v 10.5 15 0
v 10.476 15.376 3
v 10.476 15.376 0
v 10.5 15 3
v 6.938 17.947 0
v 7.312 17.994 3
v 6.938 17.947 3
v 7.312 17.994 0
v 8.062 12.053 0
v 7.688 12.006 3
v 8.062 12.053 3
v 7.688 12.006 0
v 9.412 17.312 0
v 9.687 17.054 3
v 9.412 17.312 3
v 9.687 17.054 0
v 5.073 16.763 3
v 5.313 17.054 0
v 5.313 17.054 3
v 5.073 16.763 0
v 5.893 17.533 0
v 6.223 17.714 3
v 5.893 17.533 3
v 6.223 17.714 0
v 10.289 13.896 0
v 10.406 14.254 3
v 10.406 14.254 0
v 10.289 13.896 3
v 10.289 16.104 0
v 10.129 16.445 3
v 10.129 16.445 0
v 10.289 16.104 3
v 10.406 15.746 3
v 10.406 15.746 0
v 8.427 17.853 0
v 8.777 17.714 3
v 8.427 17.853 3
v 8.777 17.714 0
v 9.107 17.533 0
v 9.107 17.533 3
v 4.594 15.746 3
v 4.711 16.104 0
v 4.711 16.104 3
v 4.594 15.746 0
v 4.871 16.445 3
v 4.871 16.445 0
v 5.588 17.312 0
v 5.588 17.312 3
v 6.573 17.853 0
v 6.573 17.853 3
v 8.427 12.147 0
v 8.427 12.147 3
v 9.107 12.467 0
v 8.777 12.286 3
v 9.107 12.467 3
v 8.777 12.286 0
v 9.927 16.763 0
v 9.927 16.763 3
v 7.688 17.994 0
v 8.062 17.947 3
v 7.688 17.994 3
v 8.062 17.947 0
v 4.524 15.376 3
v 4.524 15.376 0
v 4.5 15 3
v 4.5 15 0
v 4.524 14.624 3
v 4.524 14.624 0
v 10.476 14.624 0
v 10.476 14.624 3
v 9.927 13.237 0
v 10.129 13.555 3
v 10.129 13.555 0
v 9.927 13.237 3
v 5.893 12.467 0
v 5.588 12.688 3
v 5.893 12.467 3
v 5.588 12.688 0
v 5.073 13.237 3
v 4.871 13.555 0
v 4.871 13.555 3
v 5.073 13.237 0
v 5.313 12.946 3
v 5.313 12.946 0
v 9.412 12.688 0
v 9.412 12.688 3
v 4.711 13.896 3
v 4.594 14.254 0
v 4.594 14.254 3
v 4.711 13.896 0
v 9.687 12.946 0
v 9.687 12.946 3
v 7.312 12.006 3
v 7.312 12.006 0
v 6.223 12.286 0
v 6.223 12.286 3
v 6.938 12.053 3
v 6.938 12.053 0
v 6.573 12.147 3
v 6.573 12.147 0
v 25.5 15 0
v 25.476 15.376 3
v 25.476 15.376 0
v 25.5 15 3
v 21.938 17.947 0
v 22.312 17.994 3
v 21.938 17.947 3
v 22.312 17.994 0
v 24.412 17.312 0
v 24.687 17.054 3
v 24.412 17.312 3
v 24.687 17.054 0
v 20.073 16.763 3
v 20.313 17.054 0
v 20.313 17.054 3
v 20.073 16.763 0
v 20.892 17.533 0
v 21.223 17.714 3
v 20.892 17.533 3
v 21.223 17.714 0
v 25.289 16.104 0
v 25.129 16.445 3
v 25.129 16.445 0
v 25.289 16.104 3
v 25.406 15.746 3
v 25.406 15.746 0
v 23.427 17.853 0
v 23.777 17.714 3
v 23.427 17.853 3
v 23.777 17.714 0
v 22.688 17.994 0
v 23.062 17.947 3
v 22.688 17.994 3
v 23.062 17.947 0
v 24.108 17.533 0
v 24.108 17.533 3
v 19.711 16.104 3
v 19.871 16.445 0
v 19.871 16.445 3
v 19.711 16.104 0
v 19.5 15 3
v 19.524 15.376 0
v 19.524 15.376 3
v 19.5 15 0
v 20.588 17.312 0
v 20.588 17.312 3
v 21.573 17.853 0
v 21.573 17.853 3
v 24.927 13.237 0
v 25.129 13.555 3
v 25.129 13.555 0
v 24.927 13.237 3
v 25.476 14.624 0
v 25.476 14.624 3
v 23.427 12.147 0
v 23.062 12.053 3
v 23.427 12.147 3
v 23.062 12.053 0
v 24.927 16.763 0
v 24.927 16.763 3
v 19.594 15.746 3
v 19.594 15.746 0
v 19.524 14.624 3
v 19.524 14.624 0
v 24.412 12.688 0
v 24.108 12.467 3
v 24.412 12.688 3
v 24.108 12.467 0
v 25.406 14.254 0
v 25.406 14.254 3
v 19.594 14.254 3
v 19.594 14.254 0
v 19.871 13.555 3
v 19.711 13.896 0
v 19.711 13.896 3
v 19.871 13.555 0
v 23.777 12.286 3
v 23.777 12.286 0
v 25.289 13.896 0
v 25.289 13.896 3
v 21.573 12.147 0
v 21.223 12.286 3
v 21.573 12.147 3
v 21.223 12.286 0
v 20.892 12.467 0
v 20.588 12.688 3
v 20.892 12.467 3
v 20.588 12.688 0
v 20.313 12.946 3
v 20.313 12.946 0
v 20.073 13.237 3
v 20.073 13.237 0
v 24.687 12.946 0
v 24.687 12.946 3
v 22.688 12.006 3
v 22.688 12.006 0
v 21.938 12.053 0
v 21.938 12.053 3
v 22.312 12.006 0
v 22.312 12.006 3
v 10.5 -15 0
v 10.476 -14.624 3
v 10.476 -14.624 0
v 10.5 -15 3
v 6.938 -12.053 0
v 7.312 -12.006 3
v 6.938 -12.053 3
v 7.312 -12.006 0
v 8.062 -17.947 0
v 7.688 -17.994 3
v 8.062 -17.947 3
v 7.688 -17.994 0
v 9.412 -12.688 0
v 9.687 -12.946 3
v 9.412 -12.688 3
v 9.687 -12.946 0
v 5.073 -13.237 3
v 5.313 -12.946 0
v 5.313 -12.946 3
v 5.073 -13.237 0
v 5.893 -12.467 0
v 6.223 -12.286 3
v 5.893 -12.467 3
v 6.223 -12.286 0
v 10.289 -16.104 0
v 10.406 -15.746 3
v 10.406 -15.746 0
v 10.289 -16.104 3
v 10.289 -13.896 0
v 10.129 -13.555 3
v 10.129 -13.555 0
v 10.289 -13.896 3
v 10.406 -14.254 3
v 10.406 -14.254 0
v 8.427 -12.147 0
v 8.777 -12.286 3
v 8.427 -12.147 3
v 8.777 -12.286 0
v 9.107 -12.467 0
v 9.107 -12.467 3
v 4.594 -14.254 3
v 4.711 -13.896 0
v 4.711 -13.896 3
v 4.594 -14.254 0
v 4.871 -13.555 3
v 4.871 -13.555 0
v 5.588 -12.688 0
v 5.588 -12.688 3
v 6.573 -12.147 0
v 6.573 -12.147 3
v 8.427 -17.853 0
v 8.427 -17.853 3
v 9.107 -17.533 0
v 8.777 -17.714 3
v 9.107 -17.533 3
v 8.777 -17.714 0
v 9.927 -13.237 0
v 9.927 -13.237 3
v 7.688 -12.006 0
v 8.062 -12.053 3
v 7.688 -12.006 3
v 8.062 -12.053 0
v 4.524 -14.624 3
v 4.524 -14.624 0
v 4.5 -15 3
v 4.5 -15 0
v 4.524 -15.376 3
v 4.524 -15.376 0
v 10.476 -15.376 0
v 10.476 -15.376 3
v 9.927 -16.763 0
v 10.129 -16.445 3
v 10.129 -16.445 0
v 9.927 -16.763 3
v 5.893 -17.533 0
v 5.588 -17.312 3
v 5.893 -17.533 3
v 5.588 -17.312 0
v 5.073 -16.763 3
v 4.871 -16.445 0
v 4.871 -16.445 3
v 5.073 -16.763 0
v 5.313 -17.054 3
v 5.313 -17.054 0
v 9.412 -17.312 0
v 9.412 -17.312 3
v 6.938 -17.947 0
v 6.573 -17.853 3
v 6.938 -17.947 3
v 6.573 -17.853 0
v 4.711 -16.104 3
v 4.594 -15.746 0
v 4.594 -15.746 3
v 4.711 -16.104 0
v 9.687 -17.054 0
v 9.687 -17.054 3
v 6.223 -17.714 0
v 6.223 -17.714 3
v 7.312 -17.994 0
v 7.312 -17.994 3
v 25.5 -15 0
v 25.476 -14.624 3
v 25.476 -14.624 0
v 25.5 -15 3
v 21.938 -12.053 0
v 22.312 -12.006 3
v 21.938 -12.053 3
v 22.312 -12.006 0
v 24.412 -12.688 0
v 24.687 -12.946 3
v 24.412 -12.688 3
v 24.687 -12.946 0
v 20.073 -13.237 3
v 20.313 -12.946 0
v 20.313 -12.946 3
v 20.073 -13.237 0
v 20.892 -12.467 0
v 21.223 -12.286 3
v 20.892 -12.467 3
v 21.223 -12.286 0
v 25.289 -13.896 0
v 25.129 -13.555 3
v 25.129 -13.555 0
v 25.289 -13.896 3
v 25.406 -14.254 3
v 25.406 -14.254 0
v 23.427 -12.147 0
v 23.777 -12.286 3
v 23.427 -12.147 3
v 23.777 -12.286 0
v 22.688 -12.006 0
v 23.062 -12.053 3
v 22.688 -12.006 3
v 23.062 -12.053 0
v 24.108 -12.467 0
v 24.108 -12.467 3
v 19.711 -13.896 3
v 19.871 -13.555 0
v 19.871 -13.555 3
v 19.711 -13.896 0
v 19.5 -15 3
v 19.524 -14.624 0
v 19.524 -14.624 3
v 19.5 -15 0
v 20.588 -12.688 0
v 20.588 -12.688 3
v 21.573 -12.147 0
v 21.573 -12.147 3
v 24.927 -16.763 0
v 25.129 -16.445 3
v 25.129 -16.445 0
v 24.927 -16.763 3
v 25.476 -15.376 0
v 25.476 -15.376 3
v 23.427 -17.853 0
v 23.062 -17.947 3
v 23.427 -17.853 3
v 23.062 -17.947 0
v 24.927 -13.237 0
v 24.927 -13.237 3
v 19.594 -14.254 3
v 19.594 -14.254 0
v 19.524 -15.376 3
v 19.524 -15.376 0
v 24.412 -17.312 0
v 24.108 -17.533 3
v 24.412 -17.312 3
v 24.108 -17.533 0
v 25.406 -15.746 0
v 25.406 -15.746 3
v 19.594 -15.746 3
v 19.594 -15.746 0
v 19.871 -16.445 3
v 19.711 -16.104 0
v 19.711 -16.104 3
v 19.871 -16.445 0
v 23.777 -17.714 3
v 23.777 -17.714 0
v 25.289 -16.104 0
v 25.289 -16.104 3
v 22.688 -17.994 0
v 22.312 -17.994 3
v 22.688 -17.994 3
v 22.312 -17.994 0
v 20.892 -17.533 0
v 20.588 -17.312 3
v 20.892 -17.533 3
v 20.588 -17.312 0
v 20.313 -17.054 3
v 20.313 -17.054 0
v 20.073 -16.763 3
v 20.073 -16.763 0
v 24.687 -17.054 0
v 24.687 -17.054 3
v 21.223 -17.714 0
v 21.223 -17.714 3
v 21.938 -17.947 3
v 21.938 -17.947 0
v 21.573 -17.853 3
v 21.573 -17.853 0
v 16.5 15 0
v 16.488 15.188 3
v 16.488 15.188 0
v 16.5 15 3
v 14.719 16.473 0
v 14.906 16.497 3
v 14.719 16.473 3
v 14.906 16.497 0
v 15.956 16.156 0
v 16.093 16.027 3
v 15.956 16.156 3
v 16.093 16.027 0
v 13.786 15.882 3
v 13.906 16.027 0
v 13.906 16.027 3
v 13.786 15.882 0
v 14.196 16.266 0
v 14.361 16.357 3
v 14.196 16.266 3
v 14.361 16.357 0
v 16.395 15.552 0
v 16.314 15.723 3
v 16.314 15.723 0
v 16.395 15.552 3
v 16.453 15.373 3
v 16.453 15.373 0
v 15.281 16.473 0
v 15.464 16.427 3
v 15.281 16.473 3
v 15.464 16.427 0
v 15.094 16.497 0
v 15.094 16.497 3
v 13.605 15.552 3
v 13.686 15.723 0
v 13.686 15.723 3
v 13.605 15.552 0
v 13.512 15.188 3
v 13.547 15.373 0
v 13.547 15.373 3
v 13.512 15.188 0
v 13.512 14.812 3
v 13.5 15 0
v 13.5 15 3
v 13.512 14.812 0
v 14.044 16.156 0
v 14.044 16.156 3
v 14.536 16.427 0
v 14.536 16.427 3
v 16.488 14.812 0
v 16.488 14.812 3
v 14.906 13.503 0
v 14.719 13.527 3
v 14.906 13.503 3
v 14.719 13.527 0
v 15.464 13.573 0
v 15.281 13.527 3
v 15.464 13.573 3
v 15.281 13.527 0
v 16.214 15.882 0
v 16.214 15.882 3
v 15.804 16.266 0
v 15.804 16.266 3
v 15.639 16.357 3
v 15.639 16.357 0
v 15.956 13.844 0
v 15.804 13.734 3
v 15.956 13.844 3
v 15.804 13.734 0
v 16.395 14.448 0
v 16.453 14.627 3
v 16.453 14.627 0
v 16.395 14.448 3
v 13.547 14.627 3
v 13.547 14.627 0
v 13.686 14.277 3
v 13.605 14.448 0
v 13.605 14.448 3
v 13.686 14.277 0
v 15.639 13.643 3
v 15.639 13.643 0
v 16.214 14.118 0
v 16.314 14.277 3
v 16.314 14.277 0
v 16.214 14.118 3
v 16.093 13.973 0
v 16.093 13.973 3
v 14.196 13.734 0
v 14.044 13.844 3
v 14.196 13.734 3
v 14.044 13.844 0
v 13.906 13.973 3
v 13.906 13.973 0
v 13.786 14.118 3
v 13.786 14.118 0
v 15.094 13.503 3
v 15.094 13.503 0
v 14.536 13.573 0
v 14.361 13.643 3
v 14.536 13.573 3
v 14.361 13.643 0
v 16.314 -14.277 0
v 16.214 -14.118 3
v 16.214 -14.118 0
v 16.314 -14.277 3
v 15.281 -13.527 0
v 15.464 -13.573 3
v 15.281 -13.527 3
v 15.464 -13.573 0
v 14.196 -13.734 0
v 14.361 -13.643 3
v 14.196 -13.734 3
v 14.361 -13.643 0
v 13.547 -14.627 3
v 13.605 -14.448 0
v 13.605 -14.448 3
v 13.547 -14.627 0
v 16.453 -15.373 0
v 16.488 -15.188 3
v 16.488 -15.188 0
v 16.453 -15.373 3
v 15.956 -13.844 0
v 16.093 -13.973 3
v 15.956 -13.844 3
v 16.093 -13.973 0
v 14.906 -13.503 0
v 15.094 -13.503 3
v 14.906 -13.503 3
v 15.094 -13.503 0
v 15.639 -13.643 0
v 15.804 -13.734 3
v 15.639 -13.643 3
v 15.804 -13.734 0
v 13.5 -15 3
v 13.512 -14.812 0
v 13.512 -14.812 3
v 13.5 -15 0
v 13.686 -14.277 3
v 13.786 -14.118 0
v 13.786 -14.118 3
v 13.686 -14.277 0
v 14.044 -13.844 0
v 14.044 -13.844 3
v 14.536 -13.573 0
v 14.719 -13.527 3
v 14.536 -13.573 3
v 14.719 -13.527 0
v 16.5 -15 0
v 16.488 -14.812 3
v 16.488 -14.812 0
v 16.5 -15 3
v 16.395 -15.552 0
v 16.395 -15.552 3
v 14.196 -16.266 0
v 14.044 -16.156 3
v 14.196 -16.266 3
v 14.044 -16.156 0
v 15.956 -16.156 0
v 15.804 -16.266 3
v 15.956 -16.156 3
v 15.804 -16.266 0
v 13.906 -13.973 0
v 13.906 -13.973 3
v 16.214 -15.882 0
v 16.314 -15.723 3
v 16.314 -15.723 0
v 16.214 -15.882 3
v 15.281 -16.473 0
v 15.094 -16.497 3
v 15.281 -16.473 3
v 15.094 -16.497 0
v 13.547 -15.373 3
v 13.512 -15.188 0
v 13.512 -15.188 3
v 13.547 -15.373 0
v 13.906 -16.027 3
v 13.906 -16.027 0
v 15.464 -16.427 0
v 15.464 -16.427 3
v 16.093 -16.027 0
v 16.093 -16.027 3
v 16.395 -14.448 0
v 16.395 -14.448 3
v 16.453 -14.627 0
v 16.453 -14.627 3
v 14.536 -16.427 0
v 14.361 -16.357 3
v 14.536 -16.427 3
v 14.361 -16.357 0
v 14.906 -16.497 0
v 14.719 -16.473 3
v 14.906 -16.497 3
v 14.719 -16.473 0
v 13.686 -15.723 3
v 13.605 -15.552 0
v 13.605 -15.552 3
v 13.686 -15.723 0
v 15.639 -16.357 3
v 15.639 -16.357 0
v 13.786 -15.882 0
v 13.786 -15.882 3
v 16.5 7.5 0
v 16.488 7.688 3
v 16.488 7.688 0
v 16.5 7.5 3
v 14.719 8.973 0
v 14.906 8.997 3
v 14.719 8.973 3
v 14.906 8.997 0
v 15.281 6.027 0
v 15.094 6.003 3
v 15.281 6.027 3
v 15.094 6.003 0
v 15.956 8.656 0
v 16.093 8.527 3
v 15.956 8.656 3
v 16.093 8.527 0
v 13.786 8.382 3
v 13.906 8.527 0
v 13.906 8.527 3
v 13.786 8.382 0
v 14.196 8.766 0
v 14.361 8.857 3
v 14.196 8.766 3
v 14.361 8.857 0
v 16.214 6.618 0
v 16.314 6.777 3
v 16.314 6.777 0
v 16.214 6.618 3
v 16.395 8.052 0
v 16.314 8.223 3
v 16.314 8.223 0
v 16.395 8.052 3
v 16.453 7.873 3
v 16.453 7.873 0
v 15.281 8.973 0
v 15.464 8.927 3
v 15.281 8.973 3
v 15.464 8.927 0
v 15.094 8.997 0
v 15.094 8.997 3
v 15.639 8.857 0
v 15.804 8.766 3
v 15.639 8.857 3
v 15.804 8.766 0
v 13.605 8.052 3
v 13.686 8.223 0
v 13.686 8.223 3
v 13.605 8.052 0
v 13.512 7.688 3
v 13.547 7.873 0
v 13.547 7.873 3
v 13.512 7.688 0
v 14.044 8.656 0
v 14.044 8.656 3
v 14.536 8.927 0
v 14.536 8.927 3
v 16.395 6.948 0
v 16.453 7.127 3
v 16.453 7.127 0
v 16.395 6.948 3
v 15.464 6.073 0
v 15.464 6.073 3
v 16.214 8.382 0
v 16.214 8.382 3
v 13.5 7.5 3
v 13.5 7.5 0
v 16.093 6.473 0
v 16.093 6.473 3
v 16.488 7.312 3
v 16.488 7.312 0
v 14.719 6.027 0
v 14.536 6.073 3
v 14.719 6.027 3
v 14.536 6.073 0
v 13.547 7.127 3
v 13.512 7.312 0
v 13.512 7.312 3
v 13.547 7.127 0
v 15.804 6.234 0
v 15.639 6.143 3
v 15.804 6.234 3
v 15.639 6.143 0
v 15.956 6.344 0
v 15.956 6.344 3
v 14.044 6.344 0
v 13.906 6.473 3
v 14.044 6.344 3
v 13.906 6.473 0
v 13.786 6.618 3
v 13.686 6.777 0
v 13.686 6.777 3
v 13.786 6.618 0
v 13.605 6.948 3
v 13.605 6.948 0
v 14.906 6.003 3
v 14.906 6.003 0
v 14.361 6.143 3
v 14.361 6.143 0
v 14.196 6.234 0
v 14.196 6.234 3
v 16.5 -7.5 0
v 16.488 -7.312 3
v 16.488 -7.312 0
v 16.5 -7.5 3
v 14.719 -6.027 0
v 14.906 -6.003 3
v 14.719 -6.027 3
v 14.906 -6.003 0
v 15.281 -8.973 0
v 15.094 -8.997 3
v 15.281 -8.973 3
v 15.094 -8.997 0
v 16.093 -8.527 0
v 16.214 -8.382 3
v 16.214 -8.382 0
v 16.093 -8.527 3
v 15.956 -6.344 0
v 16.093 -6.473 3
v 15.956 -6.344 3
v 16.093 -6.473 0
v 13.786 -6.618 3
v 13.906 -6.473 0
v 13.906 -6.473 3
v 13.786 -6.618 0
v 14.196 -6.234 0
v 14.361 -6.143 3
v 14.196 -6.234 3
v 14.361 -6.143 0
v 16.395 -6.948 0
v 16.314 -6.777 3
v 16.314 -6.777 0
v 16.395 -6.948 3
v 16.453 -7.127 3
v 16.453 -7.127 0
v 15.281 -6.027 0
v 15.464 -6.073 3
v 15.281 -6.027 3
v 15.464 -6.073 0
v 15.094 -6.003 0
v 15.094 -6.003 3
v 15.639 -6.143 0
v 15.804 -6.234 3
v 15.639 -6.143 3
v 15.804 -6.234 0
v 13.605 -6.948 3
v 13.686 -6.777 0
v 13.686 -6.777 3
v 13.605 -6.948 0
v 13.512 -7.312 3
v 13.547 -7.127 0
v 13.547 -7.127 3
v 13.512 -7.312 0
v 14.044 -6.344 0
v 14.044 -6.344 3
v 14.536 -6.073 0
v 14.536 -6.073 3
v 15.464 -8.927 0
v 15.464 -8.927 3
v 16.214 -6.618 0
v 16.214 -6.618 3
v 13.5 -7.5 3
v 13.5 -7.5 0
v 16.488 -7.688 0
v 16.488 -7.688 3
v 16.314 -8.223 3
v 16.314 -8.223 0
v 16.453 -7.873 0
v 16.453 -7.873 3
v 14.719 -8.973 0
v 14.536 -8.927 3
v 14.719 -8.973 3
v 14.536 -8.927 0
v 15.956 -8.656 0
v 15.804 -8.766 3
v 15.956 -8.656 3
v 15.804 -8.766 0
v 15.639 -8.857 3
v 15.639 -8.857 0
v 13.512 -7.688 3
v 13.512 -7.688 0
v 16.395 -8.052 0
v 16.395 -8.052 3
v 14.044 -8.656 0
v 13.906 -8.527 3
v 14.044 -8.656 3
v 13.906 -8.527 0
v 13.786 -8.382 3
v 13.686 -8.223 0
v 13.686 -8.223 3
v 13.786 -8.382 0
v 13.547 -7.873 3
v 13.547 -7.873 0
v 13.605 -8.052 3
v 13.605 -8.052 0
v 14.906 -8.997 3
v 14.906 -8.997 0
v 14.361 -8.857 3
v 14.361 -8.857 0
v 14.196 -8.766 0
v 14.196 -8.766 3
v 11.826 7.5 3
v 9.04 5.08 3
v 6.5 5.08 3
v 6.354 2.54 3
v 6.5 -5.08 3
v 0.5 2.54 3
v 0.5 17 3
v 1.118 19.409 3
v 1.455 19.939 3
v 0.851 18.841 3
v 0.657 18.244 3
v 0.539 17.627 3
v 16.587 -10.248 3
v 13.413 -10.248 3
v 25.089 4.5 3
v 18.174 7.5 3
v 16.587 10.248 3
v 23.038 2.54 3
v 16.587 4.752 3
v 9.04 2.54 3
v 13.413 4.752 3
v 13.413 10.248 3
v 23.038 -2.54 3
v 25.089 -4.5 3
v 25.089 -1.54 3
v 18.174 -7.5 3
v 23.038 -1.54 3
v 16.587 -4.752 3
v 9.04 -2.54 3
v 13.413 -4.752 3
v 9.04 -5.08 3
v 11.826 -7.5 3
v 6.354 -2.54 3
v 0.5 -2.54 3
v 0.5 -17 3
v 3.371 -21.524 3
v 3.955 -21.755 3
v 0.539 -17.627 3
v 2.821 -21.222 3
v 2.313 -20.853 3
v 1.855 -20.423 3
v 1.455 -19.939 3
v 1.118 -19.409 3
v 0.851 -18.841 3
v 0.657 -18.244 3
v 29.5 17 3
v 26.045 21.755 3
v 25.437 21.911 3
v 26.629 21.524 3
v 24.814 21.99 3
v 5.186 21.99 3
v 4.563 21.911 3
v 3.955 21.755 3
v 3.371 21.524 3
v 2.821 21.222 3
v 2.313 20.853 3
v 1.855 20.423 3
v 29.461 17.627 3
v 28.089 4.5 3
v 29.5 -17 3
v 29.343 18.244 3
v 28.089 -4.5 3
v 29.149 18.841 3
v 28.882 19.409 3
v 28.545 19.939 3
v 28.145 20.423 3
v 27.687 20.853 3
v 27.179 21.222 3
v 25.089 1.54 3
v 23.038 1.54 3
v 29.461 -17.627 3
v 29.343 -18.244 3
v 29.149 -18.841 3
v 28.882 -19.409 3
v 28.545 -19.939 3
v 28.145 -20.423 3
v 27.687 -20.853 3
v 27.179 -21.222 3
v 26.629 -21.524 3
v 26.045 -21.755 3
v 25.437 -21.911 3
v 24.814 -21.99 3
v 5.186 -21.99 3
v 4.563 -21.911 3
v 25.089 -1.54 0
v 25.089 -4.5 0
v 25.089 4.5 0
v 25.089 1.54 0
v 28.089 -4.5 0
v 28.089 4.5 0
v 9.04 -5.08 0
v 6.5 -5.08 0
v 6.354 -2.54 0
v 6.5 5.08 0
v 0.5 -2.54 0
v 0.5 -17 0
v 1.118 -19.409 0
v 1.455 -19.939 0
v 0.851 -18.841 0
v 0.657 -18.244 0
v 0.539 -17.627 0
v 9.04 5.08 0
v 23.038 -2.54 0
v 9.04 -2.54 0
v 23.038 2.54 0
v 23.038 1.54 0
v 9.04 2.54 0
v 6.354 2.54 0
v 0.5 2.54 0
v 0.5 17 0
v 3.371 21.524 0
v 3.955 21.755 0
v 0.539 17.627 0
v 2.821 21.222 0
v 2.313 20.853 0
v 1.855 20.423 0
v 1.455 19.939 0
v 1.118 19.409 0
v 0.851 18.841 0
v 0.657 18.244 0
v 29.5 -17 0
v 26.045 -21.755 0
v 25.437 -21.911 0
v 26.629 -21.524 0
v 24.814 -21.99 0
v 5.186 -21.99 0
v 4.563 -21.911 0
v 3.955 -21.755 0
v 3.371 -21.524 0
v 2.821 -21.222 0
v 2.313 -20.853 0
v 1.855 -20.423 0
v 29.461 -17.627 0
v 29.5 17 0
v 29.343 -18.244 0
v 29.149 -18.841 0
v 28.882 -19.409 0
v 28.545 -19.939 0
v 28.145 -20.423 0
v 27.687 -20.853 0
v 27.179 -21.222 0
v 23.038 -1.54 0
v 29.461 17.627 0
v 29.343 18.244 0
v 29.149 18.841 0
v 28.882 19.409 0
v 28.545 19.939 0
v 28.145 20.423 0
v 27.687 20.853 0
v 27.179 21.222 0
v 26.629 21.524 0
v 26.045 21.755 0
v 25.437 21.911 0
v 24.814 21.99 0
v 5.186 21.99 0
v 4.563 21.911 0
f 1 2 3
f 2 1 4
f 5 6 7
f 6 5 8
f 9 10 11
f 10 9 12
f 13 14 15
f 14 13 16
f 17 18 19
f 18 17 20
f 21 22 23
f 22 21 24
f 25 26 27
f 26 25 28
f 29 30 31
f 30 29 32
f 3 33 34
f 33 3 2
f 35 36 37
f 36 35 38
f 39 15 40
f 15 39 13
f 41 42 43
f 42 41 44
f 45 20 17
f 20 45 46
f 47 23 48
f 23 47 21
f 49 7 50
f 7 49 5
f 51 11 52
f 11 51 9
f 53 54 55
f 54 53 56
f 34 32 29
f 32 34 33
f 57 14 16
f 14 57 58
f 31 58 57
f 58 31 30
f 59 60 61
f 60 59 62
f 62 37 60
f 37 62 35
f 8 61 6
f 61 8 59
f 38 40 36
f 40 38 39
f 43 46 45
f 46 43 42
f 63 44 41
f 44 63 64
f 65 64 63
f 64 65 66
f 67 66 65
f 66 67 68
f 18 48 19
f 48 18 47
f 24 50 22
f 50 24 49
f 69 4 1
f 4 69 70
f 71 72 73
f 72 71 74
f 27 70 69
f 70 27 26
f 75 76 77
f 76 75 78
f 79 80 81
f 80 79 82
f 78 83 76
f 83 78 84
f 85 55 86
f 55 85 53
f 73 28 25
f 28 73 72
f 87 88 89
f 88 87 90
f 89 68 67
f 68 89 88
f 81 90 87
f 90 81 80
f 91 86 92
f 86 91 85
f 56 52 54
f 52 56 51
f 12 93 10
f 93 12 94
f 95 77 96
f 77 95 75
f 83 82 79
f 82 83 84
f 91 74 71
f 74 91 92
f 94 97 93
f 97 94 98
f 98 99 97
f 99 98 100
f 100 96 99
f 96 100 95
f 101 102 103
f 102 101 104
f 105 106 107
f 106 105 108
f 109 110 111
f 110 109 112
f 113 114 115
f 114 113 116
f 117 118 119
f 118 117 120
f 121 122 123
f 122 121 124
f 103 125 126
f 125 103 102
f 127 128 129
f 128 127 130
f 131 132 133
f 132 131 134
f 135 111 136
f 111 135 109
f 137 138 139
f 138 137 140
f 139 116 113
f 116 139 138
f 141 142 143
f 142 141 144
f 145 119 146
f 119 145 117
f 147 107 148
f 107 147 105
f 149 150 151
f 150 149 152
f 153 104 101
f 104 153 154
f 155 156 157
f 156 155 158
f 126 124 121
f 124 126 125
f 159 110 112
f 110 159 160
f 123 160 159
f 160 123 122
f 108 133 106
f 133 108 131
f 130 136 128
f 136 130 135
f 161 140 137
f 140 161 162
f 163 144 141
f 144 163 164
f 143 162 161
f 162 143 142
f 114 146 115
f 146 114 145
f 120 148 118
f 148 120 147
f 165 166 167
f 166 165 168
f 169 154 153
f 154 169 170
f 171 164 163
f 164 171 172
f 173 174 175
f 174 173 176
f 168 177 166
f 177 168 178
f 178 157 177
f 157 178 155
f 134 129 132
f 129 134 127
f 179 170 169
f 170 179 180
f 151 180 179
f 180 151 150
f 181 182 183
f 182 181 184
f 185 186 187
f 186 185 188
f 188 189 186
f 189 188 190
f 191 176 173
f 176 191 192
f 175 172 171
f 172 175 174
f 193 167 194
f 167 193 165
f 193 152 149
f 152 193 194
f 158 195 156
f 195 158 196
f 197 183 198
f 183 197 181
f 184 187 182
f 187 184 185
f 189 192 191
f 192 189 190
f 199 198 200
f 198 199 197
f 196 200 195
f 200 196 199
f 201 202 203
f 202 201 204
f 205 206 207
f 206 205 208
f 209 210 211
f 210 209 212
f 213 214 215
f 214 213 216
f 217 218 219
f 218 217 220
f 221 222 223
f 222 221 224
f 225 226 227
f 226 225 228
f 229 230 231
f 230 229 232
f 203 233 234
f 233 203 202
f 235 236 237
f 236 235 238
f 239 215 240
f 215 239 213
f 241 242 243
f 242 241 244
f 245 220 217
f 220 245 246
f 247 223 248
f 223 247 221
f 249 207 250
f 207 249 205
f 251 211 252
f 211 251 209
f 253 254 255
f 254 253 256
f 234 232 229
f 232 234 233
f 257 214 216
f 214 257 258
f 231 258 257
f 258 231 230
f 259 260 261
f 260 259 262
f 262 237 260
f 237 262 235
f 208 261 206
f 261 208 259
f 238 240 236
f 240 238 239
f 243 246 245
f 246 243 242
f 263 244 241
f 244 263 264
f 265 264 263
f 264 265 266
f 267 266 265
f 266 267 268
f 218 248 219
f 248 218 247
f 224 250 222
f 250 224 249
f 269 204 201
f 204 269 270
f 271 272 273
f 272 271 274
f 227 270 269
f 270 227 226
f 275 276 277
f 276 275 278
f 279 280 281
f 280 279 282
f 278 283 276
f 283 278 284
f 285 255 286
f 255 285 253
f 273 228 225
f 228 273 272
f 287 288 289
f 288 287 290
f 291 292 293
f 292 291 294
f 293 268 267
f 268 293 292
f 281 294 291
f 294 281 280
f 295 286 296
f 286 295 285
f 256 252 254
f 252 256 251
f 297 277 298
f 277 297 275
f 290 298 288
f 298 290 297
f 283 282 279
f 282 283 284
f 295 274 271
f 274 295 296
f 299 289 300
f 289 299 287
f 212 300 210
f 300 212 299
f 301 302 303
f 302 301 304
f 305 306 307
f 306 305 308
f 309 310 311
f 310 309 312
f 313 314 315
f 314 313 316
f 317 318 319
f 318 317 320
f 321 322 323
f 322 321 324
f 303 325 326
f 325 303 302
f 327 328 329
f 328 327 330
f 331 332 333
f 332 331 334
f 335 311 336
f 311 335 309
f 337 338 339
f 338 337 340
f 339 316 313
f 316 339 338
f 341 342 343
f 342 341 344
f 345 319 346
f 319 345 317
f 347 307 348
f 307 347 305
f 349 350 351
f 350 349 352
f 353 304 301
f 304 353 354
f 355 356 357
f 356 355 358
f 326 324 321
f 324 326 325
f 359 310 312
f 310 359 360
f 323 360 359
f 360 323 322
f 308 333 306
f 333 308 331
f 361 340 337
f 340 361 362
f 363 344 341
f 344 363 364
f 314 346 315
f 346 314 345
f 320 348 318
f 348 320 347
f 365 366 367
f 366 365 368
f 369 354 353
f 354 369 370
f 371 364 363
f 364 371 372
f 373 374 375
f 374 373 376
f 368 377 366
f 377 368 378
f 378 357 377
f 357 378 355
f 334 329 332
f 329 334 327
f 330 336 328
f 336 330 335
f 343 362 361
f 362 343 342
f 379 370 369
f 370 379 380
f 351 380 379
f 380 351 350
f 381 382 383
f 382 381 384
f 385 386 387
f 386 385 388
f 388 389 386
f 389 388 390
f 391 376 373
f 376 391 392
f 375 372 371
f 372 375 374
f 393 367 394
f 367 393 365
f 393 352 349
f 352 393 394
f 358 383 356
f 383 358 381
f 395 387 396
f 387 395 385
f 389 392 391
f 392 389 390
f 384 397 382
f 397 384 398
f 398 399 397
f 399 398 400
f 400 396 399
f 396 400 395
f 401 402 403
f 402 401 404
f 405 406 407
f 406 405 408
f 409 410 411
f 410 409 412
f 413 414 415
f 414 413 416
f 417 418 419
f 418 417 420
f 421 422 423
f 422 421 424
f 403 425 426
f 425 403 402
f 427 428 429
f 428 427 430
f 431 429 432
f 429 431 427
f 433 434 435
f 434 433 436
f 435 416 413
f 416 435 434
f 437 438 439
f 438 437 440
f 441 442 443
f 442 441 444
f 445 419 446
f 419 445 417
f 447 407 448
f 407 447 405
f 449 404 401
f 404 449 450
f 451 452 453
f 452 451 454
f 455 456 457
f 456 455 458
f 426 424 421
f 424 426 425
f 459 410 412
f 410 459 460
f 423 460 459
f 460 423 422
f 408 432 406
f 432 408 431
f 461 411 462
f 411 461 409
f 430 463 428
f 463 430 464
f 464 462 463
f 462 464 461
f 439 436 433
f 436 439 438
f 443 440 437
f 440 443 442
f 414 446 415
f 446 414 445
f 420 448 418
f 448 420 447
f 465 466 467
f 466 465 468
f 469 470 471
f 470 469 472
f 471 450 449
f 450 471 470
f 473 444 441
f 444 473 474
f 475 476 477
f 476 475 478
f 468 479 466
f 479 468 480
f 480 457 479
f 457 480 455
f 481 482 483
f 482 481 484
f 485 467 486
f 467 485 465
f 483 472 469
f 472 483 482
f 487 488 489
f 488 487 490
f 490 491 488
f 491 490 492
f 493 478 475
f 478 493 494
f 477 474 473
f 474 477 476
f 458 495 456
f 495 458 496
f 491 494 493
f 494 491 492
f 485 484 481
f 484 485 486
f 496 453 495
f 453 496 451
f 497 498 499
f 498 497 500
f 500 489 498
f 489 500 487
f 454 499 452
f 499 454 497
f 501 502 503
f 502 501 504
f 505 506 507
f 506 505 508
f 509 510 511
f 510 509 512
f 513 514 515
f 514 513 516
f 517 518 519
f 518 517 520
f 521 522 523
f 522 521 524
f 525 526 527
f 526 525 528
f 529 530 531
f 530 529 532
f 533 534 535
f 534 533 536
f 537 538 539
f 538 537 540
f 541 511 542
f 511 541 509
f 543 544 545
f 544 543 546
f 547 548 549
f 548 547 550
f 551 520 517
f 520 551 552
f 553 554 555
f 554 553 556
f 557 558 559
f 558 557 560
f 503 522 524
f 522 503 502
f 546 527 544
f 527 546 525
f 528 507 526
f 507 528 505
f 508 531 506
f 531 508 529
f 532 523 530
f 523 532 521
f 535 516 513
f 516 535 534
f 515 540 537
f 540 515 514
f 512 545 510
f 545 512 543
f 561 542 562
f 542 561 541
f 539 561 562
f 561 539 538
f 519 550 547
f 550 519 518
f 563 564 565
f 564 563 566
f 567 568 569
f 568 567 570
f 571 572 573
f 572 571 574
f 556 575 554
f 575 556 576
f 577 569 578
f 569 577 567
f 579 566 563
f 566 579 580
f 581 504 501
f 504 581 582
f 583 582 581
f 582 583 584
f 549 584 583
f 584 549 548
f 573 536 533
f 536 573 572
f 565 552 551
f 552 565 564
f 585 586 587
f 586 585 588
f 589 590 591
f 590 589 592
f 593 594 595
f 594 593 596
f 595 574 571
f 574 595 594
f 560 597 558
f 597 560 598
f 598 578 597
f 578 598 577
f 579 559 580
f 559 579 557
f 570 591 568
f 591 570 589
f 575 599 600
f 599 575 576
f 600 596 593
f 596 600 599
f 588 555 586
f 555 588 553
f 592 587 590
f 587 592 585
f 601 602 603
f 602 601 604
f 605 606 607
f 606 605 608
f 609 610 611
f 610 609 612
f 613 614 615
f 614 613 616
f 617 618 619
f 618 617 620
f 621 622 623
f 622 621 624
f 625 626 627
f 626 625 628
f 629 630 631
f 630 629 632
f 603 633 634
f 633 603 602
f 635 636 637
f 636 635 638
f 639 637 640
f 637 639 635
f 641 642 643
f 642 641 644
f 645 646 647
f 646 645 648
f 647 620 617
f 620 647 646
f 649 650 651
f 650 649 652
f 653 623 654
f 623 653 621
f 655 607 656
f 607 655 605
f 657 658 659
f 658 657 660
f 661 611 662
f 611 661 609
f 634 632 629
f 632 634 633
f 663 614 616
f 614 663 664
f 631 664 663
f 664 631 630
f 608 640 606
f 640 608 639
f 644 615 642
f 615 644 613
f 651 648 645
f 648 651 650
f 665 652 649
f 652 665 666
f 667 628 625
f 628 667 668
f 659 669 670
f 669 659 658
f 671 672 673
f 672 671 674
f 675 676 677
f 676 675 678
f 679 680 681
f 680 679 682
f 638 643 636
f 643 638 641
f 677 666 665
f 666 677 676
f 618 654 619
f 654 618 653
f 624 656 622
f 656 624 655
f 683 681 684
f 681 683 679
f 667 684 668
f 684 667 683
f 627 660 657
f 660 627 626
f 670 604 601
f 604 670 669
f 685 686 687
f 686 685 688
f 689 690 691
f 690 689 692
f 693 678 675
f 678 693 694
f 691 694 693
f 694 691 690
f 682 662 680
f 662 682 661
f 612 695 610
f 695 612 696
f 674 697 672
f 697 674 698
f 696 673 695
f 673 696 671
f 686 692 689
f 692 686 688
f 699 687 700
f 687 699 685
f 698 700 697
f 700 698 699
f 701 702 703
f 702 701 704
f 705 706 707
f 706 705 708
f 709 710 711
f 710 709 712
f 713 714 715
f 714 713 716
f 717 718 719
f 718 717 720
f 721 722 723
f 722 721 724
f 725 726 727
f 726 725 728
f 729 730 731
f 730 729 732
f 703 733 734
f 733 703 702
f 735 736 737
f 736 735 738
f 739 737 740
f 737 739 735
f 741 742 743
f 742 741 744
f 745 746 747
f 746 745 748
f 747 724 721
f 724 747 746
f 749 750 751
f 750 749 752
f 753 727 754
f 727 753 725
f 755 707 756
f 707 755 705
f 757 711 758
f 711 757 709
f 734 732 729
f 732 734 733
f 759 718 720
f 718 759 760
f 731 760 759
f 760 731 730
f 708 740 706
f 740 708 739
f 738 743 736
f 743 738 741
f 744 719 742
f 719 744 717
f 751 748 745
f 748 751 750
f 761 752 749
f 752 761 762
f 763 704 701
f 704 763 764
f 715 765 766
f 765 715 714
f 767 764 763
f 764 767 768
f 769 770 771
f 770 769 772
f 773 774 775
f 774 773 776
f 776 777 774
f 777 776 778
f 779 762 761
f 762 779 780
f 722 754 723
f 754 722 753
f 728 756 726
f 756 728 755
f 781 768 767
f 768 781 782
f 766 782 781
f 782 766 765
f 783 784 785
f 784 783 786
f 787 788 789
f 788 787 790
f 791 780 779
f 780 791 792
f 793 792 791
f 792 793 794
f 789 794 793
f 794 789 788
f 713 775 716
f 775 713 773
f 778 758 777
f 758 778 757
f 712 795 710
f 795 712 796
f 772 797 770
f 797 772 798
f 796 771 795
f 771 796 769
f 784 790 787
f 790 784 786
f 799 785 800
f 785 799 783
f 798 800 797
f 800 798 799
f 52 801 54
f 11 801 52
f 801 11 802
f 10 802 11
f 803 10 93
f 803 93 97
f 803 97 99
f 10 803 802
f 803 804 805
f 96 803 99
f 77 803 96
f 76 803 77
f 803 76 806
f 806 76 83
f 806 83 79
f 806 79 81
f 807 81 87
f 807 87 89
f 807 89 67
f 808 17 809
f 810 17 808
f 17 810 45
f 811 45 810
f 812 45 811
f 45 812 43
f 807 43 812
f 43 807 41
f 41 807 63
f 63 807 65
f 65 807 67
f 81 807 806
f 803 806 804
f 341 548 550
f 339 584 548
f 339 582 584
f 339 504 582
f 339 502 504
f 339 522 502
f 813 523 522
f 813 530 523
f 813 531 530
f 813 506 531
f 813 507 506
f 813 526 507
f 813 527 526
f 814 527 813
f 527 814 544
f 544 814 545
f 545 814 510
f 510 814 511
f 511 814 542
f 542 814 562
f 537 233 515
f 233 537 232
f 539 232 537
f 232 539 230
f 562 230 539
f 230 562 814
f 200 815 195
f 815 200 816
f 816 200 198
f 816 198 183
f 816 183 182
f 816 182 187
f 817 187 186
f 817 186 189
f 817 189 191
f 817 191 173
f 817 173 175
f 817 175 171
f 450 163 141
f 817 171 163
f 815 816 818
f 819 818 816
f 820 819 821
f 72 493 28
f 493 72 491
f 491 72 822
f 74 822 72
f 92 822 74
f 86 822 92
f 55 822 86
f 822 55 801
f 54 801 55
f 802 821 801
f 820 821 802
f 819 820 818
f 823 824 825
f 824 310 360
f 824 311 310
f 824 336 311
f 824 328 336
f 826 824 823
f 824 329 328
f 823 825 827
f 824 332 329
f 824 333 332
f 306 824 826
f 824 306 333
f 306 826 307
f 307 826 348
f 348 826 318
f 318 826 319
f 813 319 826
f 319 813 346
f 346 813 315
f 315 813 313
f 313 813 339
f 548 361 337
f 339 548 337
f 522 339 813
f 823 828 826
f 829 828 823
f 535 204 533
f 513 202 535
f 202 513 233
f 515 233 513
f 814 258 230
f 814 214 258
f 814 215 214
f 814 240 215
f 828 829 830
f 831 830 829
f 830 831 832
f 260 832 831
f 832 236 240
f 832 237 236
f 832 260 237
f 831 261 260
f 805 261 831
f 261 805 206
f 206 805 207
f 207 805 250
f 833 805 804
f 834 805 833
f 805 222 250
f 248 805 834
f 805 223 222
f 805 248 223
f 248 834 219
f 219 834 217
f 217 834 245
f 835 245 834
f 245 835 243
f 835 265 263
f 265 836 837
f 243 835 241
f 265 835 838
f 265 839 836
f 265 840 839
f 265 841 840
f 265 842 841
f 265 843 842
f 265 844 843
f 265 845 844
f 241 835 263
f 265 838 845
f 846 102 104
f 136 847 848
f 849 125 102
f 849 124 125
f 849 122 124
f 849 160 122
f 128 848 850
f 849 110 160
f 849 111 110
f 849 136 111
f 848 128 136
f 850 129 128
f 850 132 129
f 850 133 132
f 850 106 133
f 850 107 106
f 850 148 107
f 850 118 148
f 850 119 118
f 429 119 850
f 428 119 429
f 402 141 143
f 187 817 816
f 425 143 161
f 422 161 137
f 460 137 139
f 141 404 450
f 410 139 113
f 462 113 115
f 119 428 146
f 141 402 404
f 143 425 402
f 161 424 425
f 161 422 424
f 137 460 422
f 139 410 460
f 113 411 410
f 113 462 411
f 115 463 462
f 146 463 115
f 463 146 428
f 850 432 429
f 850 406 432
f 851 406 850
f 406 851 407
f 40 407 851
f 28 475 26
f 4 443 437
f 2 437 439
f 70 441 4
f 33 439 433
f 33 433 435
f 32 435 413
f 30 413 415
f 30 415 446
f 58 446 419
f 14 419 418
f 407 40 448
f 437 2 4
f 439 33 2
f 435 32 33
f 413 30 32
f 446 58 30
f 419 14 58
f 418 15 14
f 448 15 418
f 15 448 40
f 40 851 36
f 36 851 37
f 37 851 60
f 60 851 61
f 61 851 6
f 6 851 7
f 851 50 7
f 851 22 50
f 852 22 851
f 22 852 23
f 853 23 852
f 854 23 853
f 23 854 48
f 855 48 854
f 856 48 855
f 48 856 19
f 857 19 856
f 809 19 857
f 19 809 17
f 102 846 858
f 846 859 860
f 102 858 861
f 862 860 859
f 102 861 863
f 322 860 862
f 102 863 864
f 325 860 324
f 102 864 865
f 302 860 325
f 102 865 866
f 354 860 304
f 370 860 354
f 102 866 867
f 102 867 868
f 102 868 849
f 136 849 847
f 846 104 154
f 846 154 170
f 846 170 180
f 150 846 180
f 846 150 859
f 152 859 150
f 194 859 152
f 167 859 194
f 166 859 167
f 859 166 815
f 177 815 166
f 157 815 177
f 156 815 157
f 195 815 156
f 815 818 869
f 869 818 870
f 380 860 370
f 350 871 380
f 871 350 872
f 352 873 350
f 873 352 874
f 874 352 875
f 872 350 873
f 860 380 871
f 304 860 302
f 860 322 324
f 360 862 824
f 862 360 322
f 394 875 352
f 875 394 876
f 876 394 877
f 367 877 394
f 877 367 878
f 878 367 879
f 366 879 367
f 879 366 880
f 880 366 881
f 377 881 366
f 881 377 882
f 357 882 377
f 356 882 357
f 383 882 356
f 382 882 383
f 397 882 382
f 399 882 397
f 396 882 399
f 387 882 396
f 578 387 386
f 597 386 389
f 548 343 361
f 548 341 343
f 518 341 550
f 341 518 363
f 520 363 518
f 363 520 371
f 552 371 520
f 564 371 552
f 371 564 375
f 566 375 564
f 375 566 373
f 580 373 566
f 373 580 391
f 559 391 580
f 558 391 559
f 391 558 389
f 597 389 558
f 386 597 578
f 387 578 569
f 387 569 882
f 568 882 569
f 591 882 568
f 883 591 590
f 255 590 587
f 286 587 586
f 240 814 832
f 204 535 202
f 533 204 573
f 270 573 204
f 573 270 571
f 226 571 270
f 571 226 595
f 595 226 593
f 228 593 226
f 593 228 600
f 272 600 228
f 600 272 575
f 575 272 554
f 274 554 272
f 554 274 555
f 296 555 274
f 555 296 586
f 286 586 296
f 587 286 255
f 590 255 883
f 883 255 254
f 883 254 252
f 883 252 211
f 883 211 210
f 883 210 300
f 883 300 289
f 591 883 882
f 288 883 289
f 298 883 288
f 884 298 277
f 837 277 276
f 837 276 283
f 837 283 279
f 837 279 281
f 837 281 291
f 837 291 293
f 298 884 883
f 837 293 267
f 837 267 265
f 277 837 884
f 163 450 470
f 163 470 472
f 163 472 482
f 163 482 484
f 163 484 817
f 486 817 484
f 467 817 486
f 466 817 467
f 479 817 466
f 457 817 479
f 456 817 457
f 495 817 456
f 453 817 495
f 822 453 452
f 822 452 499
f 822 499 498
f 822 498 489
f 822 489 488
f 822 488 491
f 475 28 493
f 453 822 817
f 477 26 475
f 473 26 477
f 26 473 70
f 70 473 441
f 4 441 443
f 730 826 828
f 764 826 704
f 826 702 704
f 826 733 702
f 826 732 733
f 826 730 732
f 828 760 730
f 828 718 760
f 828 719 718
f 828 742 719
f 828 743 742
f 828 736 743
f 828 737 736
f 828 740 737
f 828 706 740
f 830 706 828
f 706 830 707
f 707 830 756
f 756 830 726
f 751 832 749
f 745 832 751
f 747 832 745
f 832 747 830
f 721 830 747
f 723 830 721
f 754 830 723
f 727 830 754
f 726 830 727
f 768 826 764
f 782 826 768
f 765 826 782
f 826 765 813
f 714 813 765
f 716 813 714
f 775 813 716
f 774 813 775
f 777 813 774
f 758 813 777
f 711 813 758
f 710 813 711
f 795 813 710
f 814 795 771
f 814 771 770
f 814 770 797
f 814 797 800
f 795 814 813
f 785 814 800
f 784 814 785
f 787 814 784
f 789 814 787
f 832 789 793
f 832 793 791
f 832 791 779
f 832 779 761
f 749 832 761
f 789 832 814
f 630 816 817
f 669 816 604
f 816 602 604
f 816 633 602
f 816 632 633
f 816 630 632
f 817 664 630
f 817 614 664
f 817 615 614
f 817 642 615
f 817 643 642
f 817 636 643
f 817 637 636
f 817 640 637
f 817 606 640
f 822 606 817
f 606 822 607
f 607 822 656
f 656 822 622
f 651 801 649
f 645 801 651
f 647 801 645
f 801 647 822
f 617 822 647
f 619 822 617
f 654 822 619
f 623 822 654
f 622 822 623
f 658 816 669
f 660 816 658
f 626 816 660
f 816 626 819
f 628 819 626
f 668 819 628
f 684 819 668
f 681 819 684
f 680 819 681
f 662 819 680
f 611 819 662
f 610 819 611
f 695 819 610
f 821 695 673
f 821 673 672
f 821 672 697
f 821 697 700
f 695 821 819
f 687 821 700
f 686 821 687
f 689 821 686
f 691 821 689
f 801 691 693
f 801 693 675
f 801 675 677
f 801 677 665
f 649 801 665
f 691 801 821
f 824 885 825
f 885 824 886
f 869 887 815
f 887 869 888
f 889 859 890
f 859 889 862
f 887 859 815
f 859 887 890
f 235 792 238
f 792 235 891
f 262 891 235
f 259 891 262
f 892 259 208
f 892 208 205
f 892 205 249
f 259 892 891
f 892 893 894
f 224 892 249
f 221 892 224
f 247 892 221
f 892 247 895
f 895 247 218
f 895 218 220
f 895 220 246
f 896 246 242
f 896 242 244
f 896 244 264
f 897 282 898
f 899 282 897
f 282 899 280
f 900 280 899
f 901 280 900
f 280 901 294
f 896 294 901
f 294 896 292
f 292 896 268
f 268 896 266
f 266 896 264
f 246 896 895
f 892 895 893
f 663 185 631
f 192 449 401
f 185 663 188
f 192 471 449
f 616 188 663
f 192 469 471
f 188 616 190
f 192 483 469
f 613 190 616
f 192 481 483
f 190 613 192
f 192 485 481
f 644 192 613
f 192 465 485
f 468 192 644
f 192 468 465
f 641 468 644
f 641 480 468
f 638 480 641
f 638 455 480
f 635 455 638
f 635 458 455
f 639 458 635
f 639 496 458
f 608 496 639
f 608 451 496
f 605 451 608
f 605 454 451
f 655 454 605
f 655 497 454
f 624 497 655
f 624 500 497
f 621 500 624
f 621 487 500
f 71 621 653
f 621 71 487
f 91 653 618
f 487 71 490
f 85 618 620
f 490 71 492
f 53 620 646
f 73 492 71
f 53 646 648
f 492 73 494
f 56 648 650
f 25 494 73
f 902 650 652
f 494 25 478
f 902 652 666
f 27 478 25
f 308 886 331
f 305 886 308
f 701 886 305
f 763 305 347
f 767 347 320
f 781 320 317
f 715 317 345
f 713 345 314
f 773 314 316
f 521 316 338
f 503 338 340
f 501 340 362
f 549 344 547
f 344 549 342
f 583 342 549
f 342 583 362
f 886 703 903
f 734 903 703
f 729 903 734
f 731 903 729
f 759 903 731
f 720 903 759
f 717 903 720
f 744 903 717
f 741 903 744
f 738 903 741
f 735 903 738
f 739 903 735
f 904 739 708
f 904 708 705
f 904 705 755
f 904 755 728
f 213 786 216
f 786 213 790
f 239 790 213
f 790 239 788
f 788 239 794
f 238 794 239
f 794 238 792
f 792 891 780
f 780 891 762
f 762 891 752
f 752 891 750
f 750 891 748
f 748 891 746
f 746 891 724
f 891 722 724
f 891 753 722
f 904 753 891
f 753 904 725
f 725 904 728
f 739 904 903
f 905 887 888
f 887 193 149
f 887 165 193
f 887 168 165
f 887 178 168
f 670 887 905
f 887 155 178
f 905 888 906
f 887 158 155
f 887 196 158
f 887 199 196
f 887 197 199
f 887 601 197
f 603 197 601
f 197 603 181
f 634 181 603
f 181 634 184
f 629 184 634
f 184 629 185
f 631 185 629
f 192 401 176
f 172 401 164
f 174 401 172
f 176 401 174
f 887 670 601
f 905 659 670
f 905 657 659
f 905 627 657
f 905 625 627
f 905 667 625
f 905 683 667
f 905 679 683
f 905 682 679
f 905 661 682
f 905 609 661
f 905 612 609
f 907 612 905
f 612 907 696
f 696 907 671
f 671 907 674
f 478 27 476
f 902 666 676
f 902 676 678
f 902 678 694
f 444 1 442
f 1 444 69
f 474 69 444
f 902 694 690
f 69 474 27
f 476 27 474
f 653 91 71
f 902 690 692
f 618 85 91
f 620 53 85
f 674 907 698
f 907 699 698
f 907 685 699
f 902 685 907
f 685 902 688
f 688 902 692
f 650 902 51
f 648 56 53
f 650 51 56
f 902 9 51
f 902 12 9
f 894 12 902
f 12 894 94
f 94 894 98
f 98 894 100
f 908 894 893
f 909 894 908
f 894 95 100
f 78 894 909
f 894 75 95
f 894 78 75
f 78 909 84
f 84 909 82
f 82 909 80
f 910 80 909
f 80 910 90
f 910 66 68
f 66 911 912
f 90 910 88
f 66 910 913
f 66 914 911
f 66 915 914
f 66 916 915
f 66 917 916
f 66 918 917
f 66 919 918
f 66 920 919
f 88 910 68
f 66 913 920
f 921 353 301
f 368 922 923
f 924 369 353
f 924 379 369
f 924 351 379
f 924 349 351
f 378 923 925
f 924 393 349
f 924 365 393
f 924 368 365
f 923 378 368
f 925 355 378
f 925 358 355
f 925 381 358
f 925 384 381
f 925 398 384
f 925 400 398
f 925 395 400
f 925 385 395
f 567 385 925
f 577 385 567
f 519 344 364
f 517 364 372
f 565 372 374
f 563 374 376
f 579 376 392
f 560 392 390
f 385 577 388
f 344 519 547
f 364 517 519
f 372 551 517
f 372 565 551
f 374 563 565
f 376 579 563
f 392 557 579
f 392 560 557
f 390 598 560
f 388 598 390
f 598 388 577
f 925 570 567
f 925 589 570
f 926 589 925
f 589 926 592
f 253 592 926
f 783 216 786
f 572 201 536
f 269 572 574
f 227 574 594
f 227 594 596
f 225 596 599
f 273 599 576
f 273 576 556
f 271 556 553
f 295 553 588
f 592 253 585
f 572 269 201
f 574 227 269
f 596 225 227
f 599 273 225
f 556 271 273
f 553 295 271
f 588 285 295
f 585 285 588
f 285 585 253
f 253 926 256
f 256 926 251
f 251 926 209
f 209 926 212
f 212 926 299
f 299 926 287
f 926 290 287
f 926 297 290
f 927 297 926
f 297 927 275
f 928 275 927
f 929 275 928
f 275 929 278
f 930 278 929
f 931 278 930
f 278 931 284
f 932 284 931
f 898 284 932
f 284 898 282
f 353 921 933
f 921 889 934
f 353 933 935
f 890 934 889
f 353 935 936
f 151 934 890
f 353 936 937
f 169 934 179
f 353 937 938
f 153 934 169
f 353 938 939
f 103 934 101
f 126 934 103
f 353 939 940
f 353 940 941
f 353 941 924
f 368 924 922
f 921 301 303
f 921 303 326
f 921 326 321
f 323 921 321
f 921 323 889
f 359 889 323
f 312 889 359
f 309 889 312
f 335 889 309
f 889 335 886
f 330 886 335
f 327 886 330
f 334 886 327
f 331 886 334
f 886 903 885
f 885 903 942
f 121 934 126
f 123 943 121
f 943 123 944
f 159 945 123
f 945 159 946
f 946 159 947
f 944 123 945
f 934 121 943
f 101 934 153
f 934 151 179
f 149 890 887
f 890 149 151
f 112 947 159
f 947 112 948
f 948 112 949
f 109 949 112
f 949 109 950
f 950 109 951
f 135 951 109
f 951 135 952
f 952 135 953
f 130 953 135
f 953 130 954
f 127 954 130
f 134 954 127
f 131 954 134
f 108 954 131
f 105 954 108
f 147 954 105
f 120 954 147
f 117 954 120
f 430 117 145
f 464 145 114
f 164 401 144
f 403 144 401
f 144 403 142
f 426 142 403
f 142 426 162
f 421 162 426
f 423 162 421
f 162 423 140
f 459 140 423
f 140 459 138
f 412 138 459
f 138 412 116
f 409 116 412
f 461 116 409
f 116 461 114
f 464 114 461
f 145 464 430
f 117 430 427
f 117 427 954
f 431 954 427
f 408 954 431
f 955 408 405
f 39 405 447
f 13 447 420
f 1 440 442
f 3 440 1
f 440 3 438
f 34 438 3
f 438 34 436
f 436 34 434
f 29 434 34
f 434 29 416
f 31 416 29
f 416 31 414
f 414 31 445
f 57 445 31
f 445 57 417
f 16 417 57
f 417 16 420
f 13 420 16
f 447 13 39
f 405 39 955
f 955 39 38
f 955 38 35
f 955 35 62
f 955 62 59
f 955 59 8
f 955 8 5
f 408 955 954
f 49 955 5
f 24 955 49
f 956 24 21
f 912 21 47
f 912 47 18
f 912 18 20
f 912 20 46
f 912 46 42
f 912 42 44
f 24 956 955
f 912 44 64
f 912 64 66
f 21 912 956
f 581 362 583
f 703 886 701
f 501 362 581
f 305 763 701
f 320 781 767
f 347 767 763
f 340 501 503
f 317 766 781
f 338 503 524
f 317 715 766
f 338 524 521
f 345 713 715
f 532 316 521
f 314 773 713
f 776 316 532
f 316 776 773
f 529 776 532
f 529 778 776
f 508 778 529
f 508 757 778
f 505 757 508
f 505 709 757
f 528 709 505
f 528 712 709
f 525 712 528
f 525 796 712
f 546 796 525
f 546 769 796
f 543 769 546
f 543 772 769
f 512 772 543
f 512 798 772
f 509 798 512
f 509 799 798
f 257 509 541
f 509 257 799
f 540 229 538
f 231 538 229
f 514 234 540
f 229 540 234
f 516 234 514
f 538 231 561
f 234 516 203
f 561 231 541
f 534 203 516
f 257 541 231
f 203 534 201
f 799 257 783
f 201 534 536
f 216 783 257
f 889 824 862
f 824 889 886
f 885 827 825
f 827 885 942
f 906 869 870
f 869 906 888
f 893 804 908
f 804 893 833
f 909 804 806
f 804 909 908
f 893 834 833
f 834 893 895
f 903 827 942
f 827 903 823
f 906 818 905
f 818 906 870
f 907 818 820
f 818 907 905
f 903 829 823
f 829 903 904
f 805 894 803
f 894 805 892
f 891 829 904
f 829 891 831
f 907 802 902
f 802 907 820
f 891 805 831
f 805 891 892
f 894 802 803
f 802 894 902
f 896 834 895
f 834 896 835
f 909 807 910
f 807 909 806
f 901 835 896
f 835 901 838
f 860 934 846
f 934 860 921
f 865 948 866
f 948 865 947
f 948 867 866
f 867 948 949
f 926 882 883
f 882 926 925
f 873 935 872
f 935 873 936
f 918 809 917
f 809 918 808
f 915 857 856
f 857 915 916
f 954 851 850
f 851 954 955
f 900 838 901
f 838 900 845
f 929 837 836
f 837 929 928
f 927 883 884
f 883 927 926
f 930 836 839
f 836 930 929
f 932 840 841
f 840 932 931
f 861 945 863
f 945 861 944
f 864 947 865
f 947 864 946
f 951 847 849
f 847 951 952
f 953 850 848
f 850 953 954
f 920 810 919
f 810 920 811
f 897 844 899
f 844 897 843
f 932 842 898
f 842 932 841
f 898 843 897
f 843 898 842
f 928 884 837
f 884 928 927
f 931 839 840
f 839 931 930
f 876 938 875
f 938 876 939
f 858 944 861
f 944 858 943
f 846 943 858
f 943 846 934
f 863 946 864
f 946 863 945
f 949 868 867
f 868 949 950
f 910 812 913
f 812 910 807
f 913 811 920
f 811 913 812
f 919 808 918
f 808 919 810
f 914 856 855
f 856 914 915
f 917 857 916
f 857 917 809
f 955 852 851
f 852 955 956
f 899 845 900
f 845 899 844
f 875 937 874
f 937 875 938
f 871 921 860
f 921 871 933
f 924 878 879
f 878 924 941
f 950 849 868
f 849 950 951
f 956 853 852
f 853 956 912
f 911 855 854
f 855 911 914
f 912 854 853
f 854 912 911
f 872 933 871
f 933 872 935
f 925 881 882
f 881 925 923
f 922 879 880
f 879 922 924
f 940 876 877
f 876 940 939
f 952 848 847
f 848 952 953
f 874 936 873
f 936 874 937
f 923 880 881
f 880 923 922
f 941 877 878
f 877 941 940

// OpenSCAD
$fn = 50;


difference() {
	union() {
		translate(v = [15.0000000000, 0, 0]) {
			rotate(a = [0, 0, 0]) {
				hull() {
					translate(v = [-9.5000000000, 17.0000000000, 0]) {
						rotate(a = [0, 0, 0]) {
							translate(v = [0, 0, 0]) {
								rotate(a = [0, 0, 0]) {
									cylinder(h = 3, r = 5);
								}
							}
						}
					}
					translate(v = [9.5000000000, 17.0000000000, 0]) {
						rotate(a = [0, 0, 0]) {
							translate(v = [0, 0, 0]) {
								rotate(a = [0, 0, 0]) {
									cylinder(h = 3, r = 5);
								}
							}
						}
					}
					translate(v = [-9.5000000000, -17.0000000000, 0]) {
						rotate(a = [0, 0, 0]) {
							translate(v = [0, 0, 0]) {
								rotate(a = [0, 0, 0]) {
									cylinder(h = 3, r = 5);
								}
							}
						}
					}
					translate(v = [9.5000000000, -17.0000000000, 0]) {
						rotate(a = [0, 0, 0]) {
							translate(v = [0, 0, 0]) {
								rotate(a = [0, 0, 0]) {
									cylinder(h = 3, r = 5);
								}
							}
						}
					}
				}
			}
		}
	}
	union() {
		translate(v = [7.5000000000, 15.0000000000, -125.0000000000]) {
			rotate(a = [0, 0, 0]) {
				cylinder(h = 250, r = 3.0000000000);
			}
		}
		translate(v = [22.5000000000, 15.0000000000, -125.0000000000]) {
			rotate(a = [0, 0, 0]) {
				cylinder(h = 250, r = 3.0000000000);
			}
		}
		translate(v = [7.5000000000, -15.0000000000, -125.0000000000]) {
			rotate(a = [0, 0, 0]) {
				cylinder(h = 250, r = 3.0000000000);
			}
		}
		translate(v = [22.5000000000, -15.0000000000, -125.0000000000]) {
			rotate(a = [0, 0, 0]) {
				cylinder(h = 250, r = 3.0000000000);
			}
		}
		translate(v = [7.5000000000, 15.0000000000, -125.0000000000]) {
			rotate(a = [0, 0, 0]) {
				cylinder(h = 250, r = 1.5000000000);
			}
		}
		translate(v = [15.0000000000, 15.0000000000, -125.0000000000]) {
			rotate(a = [0, 0, 0]) {
				cylinder(h = 250, r = 1.5000000000);
			}
		}
		translate(v = [22.5000000000, 15.0000000000, -125.0000000000]) {
			rotate(a = [0, 0, 0]) {
				cylinder(h = 250, r = 1.5000000000);
			}
		}
		translate(v = [7.5000000000, -15.0000000000, -125.0000000000]) {
			rotate(a = [0, 0, 0]) {
				cylinder(h = 250, r = 1.5000000000);
			}
		}
		translate(v = [15.0000000000, -15.0000000000, -125.0000000000]) {
			rotate(a = [0, 0, 0]) {
				cylinder(h = 250, r = 1.5000000000);
			}
		}
		translate(v = [22.5000000000, -15.0000000000, -125.0000000000]) {
			rotate(a = [0, 0, 0]) {
				cylinder(h = 250, r = 1.5000000000);
			}
		}
		translate(v = [15, 7.5000000000, -125.0000000000]) {
			rotate(a = [0, 0, 0]) {
				cylinder(h = 250, r = 1.5000000000);
			}
		}
		translate(v = [15, -7.5000000000, -125.0000000000]) {
			rotate(a = [0, 0, 0]) {
				cylinder(h = 250, r = 1.5000000000);
			}
		}
		translate(v = [15, 7.5000000000, 3]) {
			rotate(a = [0, 0, 0]) {
				translate(v = [0, 0, 0]) {
					rotate(a = [0, 0, 0]) {
						linear_extrude(height = 2.5000000000) {
							polygon(points = [[3.1735000000, 0.0000000000], [1.5867500000, 2.7483316189], [-1.5867500000, 2.7483316189], [-3.1735000000, 0.0000000000], [-1.5867500000, -2.7483316189], [1.5867500000, -2.7483316189]]);
						}
					}
				}
			}
		}
		translate(v = [15, -7.5000000000, 3]) {
			rotate(a = [0, 0, 0]) {
				translate(v = [0, 0, 0]) {
					rotate(a = [0, 0, 0]) {
						linear_extrude(height = 2.5000000000) {
							polygon(points = [[3.1735000000, 0.0000000000], [1.5867500000, 2.7483316189], [-1.5867500000, 2.7483316189], [-3.1735000000, 0.0000000000], [-1.5867500000, -2.7483316189], [1.5867500000, -2.7483316189]]);
						}
					}
				}
			}
		}
		translate(v = [25.0890000000, -4.5000000000, 0]) {
			rotate(a = [0, 0, 0]) {
				cube(size = [3, 9, 10]);
			}
		}
		translate(v = [22.6310000000, -1.5400000000, 0]) {
			rotate(a = [0, 0, 0]) {
				cube(size = [5, 3.0800000000, 3]);
			}
		}
		translate(v = [0.3540000000, -2.5400000000, 0]) {
			rotate(a = [0, 0, 0]) {
				cube(size = [6, 5.0800000000, 3]);
			}
		}
		translate(v = [9.0380000000, -2.5400000000, 0]) {
			rotate(a = [0, 0, 0]) {
				cube(size = [14, 5.0800000000, 3]);
			}
		}
		translate(v = [6.5000000000, -5.0800000000, 0]) {
			rotate(a = [0, 0, 0]) {
				cube(size = [2.5400000000, 10.1600000000, 3]);
			}
		}
	}
}
